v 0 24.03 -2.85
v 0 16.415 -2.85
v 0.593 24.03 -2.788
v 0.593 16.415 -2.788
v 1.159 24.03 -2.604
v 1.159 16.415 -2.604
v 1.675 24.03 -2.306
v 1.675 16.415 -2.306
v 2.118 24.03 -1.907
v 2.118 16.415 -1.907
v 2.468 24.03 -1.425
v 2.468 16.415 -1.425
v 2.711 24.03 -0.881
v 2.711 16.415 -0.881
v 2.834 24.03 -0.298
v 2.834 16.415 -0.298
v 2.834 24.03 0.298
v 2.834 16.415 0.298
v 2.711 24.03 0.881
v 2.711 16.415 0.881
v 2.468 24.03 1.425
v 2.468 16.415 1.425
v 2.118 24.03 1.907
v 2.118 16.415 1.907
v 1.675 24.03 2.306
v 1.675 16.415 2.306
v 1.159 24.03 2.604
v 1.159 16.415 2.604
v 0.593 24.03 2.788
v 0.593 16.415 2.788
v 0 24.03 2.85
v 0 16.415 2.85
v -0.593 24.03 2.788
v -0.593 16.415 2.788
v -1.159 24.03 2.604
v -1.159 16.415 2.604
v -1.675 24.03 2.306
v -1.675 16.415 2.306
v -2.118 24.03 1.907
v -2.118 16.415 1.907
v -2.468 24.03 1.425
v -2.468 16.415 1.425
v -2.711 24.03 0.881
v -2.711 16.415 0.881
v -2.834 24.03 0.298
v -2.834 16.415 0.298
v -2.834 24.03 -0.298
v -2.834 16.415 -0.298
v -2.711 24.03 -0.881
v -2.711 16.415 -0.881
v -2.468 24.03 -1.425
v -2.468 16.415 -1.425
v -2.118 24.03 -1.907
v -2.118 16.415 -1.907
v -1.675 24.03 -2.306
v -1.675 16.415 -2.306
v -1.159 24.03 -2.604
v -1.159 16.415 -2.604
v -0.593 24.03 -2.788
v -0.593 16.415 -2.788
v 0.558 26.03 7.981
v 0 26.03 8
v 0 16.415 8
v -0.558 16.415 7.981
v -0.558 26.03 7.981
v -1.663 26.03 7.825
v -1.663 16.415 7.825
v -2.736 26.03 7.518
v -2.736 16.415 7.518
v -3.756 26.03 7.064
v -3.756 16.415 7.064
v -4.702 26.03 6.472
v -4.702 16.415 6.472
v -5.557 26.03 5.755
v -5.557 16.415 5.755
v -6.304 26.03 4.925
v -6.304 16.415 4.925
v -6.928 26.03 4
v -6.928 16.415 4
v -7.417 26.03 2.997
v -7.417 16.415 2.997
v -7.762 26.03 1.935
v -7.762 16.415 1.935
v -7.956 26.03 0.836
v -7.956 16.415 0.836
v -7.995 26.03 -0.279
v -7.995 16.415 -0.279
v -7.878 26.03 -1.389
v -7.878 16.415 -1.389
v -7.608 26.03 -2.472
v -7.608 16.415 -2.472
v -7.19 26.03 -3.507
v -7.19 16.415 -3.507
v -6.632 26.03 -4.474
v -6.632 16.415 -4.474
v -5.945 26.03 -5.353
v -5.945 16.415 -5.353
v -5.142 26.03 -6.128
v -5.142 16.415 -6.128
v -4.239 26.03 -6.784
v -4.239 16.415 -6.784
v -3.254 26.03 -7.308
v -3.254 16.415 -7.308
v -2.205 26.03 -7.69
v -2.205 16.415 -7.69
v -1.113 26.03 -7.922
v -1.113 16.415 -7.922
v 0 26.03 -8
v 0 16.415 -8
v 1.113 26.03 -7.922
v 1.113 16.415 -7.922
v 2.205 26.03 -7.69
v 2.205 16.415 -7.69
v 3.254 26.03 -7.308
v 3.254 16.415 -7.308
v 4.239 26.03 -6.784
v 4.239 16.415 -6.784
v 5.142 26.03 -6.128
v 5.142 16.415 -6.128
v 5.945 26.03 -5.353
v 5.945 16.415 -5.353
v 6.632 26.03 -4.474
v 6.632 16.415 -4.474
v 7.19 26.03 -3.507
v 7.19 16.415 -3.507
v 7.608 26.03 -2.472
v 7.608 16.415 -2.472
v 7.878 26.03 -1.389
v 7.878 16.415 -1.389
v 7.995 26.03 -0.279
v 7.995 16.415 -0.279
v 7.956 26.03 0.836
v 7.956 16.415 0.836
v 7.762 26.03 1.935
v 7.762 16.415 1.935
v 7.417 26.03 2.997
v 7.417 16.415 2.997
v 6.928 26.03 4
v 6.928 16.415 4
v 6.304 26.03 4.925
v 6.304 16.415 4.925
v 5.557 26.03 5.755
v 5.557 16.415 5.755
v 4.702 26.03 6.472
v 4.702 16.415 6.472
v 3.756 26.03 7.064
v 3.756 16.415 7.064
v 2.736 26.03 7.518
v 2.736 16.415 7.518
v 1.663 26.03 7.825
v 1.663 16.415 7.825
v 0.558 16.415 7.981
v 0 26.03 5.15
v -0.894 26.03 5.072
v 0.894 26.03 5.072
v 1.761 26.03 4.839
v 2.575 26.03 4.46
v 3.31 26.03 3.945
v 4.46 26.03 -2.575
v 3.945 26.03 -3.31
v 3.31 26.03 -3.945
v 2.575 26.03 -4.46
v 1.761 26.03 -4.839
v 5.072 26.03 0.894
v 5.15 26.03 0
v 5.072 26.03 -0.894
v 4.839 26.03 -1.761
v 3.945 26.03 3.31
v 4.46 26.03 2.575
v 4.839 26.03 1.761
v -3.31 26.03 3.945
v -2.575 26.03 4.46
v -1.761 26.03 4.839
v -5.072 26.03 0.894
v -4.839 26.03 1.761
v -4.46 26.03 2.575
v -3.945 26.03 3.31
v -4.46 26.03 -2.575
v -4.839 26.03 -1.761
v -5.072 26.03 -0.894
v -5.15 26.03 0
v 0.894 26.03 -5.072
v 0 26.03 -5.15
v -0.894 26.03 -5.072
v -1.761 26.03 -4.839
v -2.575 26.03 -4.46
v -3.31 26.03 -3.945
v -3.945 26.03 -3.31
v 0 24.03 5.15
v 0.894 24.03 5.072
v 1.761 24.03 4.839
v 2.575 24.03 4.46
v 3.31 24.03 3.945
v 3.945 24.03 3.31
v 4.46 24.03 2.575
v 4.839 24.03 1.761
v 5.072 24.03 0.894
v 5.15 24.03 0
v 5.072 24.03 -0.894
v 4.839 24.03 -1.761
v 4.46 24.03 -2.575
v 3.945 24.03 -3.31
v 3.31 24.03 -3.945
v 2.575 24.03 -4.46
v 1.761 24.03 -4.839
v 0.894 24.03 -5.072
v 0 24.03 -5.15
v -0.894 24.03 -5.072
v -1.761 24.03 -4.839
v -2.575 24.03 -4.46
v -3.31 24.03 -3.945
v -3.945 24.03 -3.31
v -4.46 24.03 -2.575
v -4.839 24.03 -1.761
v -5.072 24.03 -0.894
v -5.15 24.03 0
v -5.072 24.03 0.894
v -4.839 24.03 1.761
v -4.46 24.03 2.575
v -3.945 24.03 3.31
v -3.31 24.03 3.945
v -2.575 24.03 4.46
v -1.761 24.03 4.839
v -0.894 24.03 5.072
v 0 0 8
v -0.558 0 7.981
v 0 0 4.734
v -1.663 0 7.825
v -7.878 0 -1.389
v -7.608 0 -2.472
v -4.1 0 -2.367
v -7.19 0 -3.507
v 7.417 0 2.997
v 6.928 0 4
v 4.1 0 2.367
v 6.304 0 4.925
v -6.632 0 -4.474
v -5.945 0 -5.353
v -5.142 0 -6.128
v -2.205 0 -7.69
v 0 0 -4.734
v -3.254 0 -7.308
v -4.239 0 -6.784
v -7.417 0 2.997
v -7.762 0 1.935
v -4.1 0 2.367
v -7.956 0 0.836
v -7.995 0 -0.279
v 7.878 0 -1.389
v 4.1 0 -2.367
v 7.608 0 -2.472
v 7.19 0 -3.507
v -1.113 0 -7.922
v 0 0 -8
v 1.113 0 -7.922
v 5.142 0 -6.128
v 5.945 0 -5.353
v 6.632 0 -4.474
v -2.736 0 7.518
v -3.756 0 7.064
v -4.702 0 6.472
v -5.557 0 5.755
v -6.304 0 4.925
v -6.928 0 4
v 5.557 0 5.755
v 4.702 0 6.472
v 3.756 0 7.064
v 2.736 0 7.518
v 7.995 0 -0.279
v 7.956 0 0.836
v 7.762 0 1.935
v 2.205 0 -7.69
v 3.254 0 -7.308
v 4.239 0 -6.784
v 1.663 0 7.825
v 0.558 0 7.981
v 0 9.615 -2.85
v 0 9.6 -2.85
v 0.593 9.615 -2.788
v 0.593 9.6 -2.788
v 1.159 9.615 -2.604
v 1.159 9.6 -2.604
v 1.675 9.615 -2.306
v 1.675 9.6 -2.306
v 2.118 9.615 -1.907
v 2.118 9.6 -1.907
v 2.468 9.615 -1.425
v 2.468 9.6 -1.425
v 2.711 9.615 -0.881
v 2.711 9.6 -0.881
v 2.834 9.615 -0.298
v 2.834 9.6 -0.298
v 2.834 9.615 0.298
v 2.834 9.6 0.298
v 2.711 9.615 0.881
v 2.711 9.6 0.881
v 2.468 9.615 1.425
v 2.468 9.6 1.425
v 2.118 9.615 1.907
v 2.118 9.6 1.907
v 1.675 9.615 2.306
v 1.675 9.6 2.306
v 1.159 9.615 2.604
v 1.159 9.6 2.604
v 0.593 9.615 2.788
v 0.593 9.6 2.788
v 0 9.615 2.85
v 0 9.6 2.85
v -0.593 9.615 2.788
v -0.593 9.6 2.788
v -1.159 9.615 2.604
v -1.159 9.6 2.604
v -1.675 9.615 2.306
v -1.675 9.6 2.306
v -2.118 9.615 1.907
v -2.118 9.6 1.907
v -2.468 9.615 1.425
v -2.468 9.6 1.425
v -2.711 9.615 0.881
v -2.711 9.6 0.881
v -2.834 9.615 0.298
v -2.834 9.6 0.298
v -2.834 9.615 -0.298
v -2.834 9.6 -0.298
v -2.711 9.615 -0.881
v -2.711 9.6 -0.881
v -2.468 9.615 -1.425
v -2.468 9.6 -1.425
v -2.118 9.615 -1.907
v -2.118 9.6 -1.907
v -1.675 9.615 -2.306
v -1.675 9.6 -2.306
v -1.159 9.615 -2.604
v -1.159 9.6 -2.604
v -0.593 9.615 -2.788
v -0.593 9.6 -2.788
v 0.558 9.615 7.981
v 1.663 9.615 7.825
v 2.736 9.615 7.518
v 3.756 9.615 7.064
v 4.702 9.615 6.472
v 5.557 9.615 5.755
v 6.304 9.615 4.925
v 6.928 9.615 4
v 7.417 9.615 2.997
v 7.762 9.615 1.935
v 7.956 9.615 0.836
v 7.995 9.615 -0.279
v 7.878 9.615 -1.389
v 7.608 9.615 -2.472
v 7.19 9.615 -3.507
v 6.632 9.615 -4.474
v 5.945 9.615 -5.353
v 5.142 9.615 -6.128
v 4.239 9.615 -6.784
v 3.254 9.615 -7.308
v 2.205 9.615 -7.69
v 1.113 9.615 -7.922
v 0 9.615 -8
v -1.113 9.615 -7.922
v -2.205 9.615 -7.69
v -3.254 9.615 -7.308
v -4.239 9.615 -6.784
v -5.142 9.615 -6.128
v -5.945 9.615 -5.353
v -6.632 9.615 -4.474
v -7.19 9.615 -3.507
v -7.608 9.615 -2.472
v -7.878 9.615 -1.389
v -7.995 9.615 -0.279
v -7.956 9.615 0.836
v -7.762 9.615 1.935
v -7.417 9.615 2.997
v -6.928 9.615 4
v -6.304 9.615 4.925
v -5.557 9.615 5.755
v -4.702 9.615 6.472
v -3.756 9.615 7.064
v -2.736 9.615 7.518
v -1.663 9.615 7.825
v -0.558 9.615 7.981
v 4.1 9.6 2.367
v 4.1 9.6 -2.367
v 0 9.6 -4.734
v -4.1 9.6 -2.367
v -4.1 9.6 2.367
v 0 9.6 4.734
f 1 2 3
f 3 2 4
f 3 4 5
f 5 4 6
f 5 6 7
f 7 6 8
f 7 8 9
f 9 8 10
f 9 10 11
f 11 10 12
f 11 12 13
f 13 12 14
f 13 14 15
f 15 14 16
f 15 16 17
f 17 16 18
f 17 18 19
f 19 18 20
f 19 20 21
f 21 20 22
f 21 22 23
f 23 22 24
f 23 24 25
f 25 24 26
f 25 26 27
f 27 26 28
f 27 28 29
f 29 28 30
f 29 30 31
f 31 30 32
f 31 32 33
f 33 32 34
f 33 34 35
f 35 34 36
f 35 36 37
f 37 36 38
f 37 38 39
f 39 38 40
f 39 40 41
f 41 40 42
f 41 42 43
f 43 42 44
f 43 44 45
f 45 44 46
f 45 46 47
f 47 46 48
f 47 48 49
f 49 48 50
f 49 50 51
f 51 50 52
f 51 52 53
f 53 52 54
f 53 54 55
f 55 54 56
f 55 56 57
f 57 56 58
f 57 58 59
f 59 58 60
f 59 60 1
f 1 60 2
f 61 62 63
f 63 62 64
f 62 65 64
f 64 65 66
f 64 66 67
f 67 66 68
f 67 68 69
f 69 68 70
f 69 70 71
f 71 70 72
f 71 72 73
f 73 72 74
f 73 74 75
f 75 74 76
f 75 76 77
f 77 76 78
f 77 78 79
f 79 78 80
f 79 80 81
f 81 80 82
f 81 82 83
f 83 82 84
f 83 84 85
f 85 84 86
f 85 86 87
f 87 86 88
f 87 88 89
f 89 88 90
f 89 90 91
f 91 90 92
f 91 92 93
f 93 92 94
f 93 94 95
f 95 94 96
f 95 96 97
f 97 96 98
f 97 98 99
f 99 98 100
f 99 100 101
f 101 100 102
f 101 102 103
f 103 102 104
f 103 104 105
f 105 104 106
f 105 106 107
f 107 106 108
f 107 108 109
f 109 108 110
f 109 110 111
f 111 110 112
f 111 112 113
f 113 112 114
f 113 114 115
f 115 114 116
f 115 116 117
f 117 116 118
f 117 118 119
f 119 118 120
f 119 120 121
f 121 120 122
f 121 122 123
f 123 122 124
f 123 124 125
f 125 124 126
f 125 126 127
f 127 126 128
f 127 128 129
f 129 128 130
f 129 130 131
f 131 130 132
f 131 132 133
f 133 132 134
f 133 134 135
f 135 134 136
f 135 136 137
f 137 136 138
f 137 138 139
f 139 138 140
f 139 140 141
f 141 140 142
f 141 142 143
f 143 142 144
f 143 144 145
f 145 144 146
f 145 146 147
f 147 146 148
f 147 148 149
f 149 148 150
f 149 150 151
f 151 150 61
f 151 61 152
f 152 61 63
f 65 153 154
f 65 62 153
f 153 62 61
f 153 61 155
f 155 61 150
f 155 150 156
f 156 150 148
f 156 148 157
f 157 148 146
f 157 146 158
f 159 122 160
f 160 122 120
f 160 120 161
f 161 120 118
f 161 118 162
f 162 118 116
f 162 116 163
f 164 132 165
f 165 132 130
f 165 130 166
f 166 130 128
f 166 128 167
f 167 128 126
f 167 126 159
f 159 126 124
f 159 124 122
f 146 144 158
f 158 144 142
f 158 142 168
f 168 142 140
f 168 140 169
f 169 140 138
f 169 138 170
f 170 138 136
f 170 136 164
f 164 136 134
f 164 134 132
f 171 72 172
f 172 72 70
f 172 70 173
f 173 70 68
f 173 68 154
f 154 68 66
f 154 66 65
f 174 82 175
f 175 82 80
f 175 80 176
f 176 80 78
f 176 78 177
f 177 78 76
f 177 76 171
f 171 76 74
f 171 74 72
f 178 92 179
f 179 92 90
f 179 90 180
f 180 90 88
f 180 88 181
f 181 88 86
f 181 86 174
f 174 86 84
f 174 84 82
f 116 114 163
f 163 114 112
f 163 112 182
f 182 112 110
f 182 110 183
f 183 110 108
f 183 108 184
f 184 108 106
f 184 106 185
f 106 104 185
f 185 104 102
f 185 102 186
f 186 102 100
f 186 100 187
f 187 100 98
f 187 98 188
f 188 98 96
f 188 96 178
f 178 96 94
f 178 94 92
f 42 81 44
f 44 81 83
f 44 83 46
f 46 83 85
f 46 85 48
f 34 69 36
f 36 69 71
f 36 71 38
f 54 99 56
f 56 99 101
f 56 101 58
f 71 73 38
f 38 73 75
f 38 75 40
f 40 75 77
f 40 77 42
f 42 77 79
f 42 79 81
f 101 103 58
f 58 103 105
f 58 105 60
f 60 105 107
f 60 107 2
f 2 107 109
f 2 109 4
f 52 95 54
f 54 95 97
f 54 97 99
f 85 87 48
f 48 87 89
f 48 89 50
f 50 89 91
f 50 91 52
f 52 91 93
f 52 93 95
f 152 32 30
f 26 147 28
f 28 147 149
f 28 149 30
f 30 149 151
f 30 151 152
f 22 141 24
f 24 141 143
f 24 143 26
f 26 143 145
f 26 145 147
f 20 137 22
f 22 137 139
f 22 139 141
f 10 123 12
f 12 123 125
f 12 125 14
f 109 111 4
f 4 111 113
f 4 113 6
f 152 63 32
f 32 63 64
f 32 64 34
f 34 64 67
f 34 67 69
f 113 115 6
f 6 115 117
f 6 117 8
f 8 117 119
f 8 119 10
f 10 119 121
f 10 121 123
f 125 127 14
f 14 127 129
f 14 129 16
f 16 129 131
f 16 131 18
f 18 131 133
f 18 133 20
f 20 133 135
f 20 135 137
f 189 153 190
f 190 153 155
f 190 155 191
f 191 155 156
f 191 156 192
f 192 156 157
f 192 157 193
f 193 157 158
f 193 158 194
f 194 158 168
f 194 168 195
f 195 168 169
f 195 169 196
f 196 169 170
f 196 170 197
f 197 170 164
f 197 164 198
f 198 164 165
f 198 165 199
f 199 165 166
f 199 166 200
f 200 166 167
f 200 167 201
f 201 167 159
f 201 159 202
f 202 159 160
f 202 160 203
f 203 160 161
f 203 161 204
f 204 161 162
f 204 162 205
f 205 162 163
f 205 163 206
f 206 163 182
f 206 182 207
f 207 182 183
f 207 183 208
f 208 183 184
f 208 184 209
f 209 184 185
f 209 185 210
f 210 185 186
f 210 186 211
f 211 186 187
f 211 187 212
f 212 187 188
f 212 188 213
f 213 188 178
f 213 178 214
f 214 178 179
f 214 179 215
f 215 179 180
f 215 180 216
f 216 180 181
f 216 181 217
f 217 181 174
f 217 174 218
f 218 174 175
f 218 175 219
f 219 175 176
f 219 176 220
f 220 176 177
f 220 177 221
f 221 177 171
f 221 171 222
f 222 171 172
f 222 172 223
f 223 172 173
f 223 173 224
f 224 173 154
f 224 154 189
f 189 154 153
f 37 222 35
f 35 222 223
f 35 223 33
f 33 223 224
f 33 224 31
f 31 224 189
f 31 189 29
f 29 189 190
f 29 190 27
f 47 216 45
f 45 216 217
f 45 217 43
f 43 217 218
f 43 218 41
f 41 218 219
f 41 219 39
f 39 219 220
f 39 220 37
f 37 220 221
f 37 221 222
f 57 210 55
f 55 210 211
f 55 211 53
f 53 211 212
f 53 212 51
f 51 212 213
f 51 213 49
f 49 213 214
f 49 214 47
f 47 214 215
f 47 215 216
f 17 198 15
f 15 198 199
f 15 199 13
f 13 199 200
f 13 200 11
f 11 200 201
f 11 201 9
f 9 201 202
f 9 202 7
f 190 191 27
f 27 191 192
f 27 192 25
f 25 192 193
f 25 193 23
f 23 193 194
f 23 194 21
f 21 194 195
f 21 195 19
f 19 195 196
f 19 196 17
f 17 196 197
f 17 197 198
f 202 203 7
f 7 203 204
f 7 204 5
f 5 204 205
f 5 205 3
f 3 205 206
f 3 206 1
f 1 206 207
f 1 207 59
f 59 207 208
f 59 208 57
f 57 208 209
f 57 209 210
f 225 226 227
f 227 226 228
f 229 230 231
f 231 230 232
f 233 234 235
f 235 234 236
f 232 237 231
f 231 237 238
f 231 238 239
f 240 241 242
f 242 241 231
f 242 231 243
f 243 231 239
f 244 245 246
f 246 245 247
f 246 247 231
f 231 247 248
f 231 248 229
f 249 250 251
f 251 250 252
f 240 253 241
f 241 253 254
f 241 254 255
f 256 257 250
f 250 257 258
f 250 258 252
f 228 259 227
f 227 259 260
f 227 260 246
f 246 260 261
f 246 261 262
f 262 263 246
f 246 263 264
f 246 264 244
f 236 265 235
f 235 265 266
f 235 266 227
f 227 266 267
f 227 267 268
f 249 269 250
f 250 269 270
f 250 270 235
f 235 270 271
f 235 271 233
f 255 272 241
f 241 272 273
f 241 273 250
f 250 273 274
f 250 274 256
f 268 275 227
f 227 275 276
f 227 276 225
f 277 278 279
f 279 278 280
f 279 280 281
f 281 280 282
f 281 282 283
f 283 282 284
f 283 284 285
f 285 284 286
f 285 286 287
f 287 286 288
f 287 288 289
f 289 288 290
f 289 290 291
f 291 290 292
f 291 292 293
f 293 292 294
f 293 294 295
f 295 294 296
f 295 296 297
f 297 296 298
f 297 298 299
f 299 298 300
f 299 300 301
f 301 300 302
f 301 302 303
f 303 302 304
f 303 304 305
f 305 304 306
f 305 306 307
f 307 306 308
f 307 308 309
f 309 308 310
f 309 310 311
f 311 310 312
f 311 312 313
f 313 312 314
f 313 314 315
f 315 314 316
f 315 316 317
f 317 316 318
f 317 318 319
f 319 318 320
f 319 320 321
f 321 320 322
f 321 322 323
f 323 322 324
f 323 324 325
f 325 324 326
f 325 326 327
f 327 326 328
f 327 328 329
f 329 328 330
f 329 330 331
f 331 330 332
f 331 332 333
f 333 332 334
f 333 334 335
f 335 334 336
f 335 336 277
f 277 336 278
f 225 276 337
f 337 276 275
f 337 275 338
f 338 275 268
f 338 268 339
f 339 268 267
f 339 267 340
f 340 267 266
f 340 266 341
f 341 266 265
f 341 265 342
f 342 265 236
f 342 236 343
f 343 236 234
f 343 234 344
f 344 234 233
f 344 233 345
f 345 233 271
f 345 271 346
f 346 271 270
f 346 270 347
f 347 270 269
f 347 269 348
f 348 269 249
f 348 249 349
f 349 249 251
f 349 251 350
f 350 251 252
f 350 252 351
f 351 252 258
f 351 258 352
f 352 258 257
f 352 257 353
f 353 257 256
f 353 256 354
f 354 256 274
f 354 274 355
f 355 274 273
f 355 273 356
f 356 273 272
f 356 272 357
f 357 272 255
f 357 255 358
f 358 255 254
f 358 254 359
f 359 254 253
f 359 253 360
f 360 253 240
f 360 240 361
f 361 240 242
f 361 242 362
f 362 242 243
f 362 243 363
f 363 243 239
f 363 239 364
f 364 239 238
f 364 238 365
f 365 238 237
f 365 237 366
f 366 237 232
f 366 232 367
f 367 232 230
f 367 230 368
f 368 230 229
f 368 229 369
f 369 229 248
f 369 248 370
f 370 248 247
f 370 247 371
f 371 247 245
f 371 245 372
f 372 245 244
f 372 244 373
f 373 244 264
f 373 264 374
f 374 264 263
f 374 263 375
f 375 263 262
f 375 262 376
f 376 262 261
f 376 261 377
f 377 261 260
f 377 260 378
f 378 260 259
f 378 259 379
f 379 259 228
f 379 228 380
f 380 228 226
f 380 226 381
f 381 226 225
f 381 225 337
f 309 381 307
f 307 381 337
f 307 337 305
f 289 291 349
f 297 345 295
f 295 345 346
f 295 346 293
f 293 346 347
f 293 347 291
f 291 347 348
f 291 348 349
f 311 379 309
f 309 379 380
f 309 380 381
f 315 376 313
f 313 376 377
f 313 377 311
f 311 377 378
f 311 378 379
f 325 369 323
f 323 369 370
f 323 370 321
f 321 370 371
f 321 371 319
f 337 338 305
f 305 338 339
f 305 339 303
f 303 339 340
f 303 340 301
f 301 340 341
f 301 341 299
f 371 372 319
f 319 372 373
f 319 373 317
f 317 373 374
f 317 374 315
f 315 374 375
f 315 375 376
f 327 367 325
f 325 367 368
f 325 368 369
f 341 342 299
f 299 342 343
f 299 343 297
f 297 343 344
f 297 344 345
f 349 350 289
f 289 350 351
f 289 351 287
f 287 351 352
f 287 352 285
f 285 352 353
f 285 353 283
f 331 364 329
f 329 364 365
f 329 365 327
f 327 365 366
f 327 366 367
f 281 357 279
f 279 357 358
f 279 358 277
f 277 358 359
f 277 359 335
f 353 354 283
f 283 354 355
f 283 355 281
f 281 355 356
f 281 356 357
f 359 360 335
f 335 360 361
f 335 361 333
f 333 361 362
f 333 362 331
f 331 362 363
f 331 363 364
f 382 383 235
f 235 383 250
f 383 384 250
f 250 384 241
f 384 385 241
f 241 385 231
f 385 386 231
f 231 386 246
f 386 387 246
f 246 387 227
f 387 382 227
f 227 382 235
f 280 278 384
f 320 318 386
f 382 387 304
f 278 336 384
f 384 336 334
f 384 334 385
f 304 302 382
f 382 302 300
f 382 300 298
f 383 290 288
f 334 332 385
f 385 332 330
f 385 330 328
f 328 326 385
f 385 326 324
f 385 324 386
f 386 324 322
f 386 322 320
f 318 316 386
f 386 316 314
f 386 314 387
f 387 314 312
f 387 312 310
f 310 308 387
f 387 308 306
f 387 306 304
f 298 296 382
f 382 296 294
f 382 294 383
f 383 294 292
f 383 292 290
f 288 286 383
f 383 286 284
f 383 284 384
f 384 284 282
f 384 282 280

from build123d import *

# Parameters (mm, degrees)
SKETCH1_R               = 8
BOSS_EXTRUDE1_DEPTH     = 26.03
CUT_EXTRUDE1_DEPTH      = 29.382404761
CUT_EXTRUDE1_DEPTH_BACK = 29.382404761
SKETCH2_W               = 20.4
SKETCH2_H               = 6.8
SKETCH3_R               = 2.85
CUT_EXTRUDE2_DEPTH      = 26.03
SKETCH4_R               = 5.15
CUT_EXTRUDE3_DEPTH      = 2
CUT_EXTRUDE4_DEPTH      = 9.6


with BuildPart() as part:
    # Sketch1 → Boss-Extrude1 (new body)
    with BuildSketch(Plane(origin=(0, 0, 0), x_dir=(1, 0, 0), z_dir=(0, 1, 0))):
        with Locations(Location((0, 0, 0), (0, 0, 270))):
            Circle(SKETCH1_R)
    extrude(amount=BOSS_EXTRUDE1_DEPTH)

    # Sketch2 → Cut-Extrude1 (cut, two sides: drawn at the far end of the back side and taken through both)
    with BuildSketch(Plane.XY.offset(-CUT_EXTRUDE1_DEPTH_BACK)):
        with Locations((0, 13.015)):
            Rectangle(SKETCH2_W, SKETCH2_H)
    extrude(amount=CUT_EXTRUDE1_DEPTH + CUT_EXTRUDE1_DEPTH_BACK, mode=Mode.SUBTRACT)


with BuildPart() as cut_extrude1_piece_1:
    # of the separate pieces the step leaves, piece 1, a body of its own (cut_extrude1_pieces)
    add(part.part.solids().sort_by_distance((0, 16.415, 8))[0])


with BuildPart() as cut_extrude1_piece_2:
    # of the separate pieces the step leaves, piece 2, a body of its own (cut_extrude1_pieces)
    add(part.part.solids().sort_by_distance((0, 0, 8))[0])


with BuildPart() as cut_extrude2_tool:
    # Sketch3 → Cut-Extrude2 (new body)
    with BuildSketch(Plane(origin=(0, 0, 0), x_dir=(1, 0, 0), z_dir=(0, 1, 0))):
        with Locations(Location((0, 0, 0), (0, 0, 270))):
            Circle(SKETCH3_R)
    extrude(amount=CUT_EXTRUDE2_DEPTH)


with BuildPart() as cut_extrude1_piece_1_1:
    add(cut_extrude1_piece_1.part)

    # Cut-Extrude2: cut by cut_extrude2_tool
    add(cut_extrude2_tool.part, mode=Mode.SUBTRACT)

    # Sketch4 → Cut-Extrude3 (cut)
    with BuildSketch(Plane(origin=(0, 26.03, 0), x_dir=(1, 0, 0), z_dir=(0, 1, 0))):
        with Locations(Location((0, 0, 0), (0, 0, 270))):
            Circle(SKETCH4_R)
    extrude(amount=-CUT_EXTRUDE3_DEPTH, mode=Mode.SUBTRACT)


with BuildPart() as cut_extrude1_piece_2_1:
    add(cut_extrude1_piece_2.part)

    # Cut-Extrude2: cut by cut_extrude2_tool
    add(cut_extrude2_tool.part, mode=Mode.SUBTRACT)

    # Sketch5 → Cut-Extrude4 (cut)
    with BuildSketch(Plane(origin=(0, 0, 0), x_dir=(1, 0, 0), z_dir=(0, 1, 0))):
        Polygon((4.1, -2.367136104), (0, -4.734272207), (-4.1, -2.367136104), (-4.1, 2.367136104), (0, 4.734272207), (4.1, 2.367136104), align=None)
    extrude(amount=CUT_EXTRUDE4_DEPTH, mode=Mode.SUBTRACT)


solid = Compound([cut_extrude1_piece_1_1.part, cut_extrude1_piece_2_1.part])
